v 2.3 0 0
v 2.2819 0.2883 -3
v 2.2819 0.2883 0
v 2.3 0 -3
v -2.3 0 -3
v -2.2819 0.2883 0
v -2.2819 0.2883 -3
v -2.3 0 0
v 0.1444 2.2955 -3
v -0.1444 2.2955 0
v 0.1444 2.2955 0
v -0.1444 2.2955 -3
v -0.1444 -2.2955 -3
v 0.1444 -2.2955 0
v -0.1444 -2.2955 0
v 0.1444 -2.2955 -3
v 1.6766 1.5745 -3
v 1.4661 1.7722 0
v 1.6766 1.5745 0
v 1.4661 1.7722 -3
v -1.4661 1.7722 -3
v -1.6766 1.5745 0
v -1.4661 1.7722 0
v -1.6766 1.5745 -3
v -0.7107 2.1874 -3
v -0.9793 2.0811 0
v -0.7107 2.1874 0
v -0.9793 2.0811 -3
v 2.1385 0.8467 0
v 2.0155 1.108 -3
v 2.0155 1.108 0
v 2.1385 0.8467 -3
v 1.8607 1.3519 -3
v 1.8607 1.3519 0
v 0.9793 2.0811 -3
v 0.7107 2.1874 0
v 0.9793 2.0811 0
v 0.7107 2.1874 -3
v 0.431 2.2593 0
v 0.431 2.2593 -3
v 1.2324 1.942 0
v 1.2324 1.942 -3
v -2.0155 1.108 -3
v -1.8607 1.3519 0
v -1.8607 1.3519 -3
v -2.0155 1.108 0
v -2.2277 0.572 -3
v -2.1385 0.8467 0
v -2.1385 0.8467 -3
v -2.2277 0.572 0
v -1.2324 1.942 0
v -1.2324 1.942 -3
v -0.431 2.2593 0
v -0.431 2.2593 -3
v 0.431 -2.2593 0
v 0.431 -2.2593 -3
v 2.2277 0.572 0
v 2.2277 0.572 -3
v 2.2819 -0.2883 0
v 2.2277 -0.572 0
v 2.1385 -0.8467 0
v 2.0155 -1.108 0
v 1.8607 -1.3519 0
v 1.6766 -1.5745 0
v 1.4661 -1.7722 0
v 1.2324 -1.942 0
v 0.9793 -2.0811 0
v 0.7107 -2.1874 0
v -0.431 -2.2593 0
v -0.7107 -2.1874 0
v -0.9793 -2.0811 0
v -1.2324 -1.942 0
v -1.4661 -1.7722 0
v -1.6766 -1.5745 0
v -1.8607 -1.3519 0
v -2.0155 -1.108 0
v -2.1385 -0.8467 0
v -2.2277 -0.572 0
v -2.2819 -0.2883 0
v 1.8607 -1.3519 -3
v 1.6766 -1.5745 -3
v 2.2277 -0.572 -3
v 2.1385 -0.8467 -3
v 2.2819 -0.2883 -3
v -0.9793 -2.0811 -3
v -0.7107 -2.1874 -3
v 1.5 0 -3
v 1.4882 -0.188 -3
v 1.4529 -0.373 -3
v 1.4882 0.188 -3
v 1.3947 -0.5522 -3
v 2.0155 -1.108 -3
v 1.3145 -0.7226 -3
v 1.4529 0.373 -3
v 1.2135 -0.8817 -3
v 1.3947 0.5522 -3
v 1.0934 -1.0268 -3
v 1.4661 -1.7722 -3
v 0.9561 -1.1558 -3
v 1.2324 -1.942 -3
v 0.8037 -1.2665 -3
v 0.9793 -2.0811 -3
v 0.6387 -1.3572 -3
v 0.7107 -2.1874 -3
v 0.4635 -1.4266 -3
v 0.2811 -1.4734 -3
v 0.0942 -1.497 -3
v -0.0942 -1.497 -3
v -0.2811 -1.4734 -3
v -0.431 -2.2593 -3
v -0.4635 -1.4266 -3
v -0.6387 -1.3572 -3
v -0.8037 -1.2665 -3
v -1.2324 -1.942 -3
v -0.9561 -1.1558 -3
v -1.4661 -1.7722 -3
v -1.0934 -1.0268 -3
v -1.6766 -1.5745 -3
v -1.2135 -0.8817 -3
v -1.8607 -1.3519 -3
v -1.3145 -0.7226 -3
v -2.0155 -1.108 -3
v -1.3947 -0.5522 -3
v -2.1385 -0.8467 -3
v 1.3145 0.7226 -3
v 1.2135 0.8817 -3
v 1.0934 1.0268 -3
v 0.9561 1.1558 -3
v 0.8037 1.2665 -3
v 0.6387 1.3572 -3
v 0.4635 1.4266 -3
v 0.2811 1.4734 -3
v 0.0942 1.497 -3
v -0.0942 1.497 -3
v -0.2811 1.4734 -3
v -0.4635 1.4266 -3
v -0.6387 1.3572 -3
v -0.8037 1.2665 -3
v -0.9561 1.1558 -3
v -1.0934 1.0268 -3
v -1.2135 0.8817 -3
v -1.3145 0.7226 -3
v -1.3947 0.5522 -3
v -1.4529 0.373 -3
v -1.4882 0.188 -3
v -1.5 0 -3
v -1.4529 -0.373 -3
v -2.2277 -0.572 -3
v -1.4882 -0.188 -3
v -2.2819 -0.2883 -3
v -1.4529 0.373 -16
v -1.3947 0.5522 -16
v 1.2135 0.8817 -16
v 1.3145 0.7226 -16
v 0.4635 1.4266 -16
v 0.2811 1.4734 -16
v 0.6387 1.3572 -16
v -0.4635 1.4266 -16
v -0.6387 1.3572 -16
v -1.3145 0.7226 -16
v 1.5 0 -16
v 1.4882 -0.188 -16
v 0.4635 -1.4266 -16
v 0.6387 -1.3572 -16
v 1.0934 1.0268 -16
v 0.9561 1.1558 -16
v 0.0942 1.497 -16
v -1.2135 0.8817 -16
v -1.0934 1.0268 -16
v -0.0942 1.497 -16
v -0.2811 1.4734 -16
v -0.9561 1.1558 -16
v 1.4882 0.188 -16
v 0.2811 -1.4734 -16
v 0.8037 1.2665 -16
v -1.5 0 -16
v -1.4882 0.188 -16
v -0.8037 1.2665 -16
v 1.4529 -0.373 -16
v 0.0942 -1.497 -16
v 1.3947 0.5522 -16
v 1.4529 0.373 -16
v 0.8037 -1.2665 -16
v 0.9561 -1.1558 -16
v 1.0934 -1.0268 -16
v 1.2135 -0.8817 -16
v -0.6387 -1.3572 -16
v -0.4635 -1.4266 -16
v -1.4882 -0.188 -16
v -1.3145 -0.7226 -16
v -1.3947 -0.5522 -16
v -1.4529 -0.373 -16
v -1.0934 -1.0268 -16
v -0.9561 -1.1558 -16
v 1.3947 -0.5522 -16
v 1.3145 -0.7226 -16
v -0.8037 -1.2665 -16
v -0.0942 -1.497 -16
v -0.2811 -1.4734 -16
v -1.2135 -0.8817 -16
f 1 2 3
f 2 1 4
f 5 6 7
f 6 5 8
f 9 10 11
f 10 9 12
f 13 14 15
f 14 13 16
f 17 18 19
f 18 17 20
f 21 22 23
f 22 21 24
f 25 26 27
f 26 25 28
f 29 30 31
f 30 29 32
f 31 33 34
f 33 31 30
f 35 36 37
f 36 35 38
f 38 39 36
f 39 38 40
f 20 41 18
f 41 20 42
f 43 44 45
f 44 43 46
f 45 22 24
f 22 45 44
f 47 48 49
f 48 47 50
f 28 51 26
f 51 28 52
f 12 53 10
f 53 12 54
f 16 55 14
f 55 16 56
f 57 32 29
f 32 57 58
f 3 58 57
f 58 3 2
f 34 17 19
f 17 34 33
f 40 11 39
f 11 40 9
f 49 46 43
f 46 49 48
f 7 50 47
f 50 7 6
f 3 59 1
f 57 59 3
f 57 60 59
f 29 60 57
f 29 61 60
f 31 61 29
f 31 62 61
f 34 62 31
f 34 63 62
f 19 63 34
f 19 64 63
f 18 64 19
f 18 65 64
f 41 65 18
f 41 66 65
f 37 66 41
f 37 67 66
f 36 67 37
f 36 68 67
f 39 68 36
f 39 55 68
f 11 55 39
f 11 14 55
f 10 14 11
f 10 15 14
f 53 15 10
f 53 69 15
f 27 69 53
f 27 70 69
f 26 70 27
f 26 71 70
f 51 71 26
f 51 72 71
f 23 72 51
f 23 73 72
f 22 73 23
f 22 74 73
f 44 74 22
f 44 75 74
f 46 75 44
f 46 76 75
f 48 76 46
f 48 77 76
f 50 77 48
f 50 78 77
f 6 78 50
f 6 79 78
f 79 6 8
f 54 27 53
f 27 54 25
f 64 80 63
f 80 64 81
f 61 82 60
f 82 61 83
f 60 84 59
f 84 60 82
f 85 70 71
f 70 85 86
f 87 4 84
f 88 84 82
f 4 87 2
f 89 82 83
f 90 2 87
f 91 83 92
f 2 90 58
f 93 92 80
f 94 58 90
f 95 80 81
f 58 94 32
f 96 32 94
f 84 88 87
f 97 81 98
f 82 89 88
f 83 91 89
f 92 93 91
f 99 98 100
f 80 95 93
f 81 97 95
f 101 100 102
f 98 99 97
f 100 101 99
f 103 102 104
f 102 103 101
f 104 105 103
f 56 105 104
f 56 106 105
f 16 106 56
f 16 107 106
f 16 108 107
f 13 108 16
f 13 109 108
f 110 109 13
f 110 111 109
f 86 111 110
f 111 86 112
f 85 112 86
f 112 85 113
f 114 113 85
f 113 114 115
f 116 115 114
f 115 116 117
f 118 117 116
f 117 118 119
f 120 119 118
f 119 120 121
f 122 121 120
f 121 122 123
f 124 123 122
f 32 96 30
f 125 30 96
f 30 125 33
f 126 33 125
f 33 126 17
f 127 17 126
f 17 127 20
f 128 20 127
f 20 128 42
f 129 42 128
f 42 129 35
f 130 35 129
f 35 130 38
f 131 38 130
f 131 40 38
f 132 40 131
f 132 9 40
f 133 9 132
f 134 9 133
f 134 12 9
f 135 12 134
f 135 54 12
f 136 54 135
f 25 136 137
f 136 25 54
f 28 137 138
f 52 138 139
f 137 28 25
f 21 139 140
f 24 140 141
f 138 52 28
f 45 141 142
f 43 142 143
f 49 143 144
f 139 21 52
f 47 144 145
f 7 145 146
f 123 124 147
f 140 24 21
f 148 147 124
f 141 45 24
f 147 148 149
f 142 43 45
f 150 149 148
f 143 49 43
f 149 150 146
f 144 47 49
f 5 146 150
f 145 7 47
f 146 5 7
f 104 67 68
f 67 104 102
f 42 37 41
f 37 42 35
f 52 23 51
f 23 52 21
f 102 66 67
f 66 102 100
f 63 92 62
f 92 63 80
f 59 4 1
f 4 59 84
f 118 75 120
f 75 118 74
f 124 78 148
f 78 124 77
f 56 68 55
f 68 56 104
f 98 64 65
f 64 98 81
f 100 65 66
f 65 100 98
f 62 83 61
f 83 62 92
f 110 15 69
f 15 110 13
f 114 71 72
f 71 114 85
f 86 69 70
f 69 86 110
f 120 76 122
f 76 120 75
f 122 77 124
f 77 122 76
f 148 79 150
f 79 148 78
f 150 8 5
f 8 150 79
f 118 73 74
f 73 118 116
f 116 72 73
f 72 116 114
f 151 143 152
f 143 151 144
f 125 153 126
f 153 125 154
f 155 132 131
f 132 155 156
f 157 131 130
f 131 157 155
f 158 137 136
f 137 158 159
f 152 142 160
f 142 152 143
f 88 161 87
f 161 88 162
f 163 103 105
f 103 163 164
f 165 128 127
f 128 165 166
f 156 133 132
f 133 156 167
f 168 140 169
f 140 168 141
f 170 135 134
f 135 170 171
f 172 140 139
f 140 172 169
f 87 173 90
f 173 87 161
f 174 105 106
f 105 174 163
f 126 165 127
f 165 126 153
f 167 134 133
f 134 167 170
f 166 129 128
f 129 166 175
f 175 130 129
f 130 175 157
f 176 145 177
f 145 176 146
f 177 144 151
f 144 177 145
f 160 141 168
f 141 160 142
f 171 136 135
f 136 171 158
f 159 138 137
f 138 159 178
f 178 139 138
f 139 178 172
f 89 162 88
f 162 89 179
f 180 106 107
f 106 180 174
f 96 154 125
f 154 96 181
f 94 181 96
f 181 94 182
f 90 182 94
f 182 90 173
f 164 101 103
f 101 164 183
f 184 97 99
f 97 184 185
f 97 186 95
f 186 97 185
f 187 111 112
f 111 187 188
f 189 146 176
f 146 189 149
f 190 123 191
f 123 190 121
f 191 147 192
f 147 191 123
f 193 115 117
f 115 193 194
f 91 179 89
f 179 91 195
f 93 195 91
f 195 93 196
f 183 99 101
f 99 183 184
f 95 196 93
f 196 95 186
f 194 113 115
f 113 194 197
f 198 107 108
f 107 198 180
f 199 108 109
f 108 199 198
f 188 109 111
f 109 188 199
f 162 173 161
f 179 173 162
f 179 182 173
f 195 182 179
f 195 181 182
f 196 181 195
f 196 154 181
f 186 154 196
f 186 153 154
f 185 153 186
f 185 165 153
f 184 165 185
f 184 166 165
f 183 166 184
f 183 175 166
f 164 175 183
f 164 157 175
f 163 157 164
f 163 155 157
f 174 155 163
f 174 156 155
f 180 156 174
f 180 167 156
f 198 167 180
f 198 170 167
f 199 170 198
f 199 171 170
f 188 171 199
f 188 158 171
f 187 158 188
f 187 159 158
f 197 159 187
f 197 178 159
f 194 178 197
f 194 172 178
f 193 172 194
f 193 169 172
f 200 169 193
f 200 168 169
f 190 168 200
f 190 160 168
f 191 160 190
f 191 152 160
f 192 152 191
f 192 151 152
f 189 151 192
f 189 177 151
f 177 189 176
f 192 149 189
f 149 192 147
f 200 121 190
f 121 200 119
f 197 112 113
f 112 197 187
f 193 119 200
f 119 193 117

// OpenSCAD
$fn = 50;


difference() {
	union() {
		translate(v = [0, 0, -3]) {
			rotate(a = [0, 0, 0]) {
				cylinder(h = 3, r1 = 2.3000000000, r2 = 2.3000000000);
			}
		}
		translate(v = [0, 0, -16]) {
			rotate(a = [0, 0, 0]) {
				cylinder(h = 16, r = 1.5000000000);
			}
		}
	}
	union();
}
